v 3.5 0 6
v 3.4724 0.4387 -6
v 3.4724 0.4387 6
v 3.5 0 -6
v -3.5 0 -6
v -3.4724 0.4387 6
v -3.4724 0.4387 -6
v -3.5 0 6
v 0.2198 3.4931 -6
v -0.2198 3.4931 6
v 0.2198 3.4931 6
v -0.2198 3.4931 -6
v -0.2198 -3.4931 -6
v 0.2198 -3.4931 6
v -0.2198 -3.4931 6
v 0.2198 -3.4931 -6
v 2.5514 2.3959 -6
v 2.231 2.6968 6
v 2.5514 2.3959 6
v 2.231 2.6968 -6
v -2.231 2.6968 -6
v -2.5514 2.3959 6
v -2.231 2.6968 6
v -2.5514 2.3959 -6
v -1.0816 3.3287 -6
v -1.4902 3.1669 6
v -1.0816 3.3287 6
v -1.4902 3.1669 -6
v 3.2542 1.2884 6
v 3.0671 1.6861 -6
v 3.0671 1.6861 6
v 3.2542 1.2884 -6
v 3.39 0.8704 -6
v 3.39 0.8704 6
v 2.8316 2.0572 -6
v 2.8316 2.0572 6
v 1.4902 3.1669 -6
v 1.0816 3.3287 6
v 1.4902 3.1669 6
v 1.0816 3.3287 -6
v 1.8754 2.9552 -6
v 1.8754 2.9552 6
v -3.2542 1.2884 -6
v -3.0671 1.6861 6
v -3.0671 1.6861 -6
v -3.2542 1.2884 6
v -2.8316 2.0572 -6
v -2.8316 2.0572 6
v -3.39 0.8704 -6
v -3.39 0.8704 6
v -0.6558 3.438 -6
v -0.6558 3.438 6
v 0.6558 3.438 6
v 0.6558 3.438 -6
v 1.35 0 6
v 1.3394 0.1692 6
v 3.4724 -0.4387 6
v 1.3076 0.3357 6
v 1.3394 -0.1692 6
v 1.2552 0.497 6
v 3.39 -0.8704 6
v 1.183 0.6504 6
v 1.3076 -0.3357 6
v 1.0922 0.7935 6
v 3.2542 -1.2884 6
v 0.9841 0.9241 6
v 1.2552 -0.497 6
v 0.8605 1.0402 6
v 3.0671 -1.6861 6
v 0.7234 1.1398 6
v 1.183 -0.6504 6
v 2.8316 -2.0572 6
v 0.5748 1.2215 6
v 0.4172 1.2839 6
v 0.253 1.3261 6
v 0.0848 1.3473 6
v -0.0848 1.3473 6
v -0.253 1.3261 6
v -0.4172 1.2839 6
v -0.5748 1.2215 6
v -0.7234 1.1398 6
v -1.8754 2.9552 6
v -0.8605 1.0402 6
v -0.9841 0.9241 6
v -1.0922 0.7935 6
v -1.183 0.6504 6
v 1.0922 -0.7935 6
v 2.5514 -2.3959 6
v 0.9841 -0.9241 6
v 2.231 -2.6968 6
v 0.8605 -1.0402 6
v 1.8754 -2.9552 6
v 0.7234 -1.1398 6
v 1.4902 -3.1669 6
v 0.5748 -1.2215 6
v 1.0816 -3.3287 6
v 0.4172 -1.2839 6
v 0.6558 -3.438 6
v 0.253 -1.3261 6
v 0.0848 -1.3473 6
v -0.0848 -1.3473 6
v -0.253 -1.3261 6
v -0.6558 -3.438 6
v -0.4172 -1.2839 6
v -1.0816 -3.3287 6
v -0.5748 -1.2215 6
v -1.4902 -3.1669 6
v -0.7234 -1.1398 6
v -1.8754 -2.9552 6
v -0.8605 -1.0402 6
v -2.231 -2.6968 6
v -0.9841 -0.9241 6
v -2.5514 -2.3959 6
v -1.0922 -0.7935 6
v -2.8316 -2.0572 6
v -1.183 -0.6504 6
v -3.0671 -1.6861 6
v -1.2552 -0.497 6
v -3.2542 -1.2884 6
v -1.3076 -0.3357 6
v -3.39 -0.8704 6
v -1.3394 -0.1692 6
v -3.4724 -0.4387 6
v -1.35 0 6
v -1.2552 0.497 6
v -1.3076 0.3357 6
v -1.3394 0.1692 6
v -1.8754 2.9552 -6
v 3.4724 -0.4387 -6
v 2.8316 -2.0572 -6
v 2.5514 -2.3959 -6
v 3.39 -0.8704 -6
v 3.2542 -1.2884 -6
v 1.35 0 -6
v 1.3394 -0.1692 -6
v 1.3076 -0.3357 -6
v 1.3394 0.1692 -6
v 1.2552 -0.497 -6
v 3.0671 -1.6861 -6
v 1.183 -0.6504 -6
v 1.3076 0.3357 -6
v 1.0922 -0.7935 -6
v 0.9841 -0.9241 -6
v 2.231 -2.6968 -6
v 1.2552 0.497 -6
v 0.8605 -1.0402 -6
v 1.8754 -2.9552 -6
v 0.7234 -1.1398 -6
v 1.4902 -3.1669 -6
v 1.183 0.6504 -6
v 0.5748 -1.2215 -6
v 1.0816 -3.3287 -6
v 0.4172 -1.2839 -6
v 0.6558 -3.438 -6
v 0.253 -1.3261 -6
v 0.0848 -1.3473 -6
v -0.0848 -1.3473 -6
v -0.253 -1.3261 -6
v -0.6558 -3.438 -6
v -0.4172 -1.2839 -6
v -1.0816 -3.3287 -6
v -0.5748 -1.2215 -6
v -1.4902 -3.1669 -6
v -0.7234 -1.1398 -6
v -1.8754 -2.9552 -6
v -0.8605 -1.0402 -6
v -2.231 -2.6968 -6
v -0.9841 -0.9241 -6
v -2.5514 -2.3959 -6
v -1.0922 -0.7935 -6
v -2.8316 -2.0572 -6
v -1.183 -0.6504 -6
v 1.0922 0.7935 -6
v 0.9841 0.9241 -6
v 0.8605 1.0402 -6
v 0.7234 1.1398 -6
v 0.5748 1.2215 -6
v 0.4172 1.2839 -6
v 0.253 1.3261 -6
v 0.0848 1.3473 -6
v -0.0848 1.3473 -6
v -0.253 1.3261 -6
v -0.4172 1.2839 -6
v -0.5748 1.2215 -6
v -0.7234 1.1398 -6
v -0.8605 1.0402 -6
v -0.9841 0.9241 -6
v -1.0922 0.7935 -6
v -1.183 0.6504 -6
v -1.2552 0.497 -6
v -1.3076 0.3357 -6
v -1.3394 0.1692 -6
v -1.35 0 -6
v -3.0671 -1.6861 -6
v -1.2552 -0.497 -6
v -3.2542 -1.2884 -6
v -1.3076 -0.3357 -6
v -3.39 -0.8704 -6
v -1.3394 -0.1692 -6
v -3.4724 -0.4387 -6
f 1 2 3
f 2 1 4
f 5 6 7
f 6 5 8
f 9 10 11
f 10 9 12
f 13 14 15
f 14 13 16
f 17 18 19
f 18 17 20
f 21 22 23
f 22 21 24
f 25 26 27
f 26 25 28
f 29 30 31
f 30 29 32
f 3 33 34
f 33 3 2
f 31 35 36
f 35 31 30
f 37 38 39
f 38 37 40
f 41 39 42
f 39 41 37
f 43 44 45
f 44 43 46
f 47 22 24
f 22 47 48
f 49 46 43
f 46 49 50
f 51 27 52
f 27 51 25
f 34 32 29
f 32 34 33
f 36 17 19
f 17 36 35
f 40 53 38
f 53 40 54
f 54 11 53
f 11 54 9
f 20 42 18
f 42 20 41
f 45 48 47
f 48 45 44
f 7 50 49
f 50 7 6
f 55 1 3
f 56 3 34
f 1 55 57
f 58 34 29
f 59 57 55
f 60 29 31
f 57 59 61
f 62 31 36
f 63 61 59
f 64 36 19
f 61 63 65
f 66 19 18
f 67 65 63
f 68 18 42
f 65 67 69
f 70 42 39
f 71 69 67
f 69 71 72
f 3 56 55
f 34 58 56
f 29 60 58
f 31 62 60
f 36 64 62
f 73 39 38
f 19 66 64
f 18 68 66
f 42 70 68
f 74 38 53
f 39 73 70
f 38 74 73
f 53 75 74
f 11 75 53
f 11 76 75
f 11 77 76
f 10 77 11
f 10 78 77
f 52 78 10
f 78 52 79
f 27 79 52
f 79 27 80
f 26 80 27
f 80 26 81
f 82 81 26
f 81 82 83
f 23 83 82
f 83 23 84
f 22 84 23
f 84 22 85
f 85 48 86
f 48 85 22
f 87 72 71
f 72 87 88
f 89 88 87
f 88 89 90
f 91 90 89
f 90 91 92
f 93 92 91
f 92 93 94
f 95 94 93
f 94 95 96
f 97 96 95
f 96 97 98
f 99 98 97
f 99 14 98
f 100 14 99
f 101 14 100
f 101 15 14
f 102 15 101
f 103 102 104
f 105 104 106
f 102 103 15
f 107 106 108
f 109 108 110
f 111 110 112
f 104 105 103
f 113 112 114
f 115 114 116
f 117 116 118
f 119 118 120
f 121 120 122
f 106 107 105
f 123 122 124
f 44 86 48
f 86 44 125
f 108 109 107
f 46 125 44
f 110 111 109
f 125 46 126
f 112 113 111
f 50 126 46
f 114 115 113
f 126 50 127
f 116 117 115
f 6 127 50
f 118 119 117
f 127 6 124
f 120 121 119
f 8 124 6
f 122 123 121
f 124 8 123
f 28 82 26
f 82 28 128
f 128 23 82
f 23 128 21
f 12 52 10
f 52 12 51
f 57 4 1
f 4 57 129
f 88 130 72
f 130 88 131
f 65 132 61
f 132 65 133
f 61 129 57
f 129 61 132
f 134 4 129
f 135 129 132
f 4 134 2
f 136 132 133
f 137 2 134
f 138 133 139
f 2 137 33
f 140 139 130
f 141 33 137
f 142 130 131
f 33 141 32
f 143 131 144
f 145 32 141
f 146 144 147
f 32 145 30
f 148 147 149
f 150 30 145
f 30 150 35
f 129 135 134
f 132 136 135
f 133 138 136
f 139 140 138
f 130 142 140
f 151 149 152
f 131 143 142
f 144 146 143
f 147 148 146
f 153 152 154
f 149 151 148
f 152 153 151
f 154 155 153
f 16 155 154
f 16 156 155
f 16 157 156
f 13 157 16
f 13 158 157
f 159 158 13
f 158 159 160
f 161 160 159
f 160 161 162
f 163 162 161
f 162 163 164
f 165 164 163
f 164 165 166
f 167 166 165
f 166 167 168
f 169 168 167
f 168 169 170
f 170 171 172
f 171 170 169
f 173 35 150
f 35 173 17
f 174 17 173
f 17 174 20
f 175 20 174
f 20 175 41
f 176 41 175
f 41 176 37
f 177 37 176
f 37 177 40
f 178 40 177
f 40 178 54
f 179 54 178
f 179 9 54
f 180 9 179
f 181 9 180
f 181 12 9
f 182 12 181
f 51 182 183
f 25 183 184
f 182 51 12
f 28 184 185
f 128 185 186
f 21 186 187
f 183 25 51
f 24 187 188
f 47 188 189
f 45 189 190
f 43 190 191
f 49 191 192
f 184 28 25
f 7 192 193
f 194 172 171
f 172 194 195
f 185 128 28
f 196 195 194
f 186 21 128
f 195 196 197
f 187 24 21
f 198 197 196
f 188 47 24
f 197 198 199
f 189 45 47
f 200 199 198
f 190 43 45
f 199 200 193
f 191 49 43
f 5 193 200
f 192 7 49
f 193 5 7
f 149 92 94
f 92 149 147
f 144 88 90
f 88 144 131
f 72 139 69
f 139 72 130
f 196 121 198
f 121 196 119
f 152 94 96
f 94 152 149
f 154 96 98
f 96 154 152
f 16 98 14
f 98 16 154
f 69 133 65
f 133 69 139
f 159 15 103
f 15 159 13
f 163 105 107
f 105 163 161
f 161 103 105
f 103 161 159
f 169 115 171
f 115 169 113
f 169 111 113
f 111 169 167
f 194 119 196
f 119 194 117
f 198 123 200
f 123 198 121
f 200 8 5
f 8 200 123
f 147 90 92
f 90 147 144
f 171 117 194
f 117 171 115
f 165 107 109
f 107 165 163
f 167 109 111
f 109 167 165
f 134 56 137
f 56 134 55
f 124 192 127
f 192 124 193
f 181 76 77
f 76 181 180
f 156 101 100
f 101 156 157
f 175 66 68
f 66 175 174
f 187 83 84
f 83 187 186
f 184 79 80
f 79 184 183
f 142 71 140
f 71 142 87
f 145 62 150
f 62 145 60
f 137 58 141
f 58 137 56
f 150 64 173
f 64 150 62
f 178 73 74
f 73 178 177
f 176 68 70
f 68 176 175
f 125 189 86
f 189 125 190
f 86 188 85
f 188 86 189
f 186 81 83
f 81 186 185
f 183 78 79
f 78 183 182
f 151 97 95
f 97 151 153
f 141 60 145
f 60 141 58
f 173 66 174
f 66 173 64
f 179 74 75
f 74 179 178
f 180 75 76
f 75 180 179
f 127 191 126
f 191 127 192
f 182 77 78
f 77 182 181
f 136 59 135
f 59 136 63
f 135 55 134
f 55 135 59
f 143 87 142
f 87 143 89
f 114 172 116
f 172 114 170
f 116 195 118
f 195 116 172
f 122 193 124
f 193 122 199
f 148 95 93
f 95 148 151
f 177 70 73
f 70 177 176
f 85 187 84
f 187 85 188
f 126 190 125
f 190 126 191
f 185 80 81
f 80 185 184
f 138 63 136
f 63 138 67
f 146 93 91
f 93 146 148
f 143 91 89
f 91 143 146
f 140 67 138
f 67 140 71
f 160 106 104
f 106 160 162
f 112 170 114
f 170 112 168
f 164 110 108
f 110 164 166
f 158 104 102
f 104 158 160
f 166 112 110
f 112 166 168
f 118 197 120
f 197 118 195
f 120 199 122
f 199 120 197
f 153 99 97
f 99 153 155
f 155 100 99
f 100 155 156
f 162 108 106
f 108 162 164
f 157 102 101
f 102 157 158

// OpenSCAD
$fn = 50;


difference() {
	union() {
		translate(v = [0, 0, -6.0000000000]) {
			cylinder(h = 12, r = 3.5000000000);
		}
	}
	union() {
		translate(v = [0, 0, -100.0000000000]) {
			cylinder(h = 200, r = 1.3500000000);
		}
	}
}
